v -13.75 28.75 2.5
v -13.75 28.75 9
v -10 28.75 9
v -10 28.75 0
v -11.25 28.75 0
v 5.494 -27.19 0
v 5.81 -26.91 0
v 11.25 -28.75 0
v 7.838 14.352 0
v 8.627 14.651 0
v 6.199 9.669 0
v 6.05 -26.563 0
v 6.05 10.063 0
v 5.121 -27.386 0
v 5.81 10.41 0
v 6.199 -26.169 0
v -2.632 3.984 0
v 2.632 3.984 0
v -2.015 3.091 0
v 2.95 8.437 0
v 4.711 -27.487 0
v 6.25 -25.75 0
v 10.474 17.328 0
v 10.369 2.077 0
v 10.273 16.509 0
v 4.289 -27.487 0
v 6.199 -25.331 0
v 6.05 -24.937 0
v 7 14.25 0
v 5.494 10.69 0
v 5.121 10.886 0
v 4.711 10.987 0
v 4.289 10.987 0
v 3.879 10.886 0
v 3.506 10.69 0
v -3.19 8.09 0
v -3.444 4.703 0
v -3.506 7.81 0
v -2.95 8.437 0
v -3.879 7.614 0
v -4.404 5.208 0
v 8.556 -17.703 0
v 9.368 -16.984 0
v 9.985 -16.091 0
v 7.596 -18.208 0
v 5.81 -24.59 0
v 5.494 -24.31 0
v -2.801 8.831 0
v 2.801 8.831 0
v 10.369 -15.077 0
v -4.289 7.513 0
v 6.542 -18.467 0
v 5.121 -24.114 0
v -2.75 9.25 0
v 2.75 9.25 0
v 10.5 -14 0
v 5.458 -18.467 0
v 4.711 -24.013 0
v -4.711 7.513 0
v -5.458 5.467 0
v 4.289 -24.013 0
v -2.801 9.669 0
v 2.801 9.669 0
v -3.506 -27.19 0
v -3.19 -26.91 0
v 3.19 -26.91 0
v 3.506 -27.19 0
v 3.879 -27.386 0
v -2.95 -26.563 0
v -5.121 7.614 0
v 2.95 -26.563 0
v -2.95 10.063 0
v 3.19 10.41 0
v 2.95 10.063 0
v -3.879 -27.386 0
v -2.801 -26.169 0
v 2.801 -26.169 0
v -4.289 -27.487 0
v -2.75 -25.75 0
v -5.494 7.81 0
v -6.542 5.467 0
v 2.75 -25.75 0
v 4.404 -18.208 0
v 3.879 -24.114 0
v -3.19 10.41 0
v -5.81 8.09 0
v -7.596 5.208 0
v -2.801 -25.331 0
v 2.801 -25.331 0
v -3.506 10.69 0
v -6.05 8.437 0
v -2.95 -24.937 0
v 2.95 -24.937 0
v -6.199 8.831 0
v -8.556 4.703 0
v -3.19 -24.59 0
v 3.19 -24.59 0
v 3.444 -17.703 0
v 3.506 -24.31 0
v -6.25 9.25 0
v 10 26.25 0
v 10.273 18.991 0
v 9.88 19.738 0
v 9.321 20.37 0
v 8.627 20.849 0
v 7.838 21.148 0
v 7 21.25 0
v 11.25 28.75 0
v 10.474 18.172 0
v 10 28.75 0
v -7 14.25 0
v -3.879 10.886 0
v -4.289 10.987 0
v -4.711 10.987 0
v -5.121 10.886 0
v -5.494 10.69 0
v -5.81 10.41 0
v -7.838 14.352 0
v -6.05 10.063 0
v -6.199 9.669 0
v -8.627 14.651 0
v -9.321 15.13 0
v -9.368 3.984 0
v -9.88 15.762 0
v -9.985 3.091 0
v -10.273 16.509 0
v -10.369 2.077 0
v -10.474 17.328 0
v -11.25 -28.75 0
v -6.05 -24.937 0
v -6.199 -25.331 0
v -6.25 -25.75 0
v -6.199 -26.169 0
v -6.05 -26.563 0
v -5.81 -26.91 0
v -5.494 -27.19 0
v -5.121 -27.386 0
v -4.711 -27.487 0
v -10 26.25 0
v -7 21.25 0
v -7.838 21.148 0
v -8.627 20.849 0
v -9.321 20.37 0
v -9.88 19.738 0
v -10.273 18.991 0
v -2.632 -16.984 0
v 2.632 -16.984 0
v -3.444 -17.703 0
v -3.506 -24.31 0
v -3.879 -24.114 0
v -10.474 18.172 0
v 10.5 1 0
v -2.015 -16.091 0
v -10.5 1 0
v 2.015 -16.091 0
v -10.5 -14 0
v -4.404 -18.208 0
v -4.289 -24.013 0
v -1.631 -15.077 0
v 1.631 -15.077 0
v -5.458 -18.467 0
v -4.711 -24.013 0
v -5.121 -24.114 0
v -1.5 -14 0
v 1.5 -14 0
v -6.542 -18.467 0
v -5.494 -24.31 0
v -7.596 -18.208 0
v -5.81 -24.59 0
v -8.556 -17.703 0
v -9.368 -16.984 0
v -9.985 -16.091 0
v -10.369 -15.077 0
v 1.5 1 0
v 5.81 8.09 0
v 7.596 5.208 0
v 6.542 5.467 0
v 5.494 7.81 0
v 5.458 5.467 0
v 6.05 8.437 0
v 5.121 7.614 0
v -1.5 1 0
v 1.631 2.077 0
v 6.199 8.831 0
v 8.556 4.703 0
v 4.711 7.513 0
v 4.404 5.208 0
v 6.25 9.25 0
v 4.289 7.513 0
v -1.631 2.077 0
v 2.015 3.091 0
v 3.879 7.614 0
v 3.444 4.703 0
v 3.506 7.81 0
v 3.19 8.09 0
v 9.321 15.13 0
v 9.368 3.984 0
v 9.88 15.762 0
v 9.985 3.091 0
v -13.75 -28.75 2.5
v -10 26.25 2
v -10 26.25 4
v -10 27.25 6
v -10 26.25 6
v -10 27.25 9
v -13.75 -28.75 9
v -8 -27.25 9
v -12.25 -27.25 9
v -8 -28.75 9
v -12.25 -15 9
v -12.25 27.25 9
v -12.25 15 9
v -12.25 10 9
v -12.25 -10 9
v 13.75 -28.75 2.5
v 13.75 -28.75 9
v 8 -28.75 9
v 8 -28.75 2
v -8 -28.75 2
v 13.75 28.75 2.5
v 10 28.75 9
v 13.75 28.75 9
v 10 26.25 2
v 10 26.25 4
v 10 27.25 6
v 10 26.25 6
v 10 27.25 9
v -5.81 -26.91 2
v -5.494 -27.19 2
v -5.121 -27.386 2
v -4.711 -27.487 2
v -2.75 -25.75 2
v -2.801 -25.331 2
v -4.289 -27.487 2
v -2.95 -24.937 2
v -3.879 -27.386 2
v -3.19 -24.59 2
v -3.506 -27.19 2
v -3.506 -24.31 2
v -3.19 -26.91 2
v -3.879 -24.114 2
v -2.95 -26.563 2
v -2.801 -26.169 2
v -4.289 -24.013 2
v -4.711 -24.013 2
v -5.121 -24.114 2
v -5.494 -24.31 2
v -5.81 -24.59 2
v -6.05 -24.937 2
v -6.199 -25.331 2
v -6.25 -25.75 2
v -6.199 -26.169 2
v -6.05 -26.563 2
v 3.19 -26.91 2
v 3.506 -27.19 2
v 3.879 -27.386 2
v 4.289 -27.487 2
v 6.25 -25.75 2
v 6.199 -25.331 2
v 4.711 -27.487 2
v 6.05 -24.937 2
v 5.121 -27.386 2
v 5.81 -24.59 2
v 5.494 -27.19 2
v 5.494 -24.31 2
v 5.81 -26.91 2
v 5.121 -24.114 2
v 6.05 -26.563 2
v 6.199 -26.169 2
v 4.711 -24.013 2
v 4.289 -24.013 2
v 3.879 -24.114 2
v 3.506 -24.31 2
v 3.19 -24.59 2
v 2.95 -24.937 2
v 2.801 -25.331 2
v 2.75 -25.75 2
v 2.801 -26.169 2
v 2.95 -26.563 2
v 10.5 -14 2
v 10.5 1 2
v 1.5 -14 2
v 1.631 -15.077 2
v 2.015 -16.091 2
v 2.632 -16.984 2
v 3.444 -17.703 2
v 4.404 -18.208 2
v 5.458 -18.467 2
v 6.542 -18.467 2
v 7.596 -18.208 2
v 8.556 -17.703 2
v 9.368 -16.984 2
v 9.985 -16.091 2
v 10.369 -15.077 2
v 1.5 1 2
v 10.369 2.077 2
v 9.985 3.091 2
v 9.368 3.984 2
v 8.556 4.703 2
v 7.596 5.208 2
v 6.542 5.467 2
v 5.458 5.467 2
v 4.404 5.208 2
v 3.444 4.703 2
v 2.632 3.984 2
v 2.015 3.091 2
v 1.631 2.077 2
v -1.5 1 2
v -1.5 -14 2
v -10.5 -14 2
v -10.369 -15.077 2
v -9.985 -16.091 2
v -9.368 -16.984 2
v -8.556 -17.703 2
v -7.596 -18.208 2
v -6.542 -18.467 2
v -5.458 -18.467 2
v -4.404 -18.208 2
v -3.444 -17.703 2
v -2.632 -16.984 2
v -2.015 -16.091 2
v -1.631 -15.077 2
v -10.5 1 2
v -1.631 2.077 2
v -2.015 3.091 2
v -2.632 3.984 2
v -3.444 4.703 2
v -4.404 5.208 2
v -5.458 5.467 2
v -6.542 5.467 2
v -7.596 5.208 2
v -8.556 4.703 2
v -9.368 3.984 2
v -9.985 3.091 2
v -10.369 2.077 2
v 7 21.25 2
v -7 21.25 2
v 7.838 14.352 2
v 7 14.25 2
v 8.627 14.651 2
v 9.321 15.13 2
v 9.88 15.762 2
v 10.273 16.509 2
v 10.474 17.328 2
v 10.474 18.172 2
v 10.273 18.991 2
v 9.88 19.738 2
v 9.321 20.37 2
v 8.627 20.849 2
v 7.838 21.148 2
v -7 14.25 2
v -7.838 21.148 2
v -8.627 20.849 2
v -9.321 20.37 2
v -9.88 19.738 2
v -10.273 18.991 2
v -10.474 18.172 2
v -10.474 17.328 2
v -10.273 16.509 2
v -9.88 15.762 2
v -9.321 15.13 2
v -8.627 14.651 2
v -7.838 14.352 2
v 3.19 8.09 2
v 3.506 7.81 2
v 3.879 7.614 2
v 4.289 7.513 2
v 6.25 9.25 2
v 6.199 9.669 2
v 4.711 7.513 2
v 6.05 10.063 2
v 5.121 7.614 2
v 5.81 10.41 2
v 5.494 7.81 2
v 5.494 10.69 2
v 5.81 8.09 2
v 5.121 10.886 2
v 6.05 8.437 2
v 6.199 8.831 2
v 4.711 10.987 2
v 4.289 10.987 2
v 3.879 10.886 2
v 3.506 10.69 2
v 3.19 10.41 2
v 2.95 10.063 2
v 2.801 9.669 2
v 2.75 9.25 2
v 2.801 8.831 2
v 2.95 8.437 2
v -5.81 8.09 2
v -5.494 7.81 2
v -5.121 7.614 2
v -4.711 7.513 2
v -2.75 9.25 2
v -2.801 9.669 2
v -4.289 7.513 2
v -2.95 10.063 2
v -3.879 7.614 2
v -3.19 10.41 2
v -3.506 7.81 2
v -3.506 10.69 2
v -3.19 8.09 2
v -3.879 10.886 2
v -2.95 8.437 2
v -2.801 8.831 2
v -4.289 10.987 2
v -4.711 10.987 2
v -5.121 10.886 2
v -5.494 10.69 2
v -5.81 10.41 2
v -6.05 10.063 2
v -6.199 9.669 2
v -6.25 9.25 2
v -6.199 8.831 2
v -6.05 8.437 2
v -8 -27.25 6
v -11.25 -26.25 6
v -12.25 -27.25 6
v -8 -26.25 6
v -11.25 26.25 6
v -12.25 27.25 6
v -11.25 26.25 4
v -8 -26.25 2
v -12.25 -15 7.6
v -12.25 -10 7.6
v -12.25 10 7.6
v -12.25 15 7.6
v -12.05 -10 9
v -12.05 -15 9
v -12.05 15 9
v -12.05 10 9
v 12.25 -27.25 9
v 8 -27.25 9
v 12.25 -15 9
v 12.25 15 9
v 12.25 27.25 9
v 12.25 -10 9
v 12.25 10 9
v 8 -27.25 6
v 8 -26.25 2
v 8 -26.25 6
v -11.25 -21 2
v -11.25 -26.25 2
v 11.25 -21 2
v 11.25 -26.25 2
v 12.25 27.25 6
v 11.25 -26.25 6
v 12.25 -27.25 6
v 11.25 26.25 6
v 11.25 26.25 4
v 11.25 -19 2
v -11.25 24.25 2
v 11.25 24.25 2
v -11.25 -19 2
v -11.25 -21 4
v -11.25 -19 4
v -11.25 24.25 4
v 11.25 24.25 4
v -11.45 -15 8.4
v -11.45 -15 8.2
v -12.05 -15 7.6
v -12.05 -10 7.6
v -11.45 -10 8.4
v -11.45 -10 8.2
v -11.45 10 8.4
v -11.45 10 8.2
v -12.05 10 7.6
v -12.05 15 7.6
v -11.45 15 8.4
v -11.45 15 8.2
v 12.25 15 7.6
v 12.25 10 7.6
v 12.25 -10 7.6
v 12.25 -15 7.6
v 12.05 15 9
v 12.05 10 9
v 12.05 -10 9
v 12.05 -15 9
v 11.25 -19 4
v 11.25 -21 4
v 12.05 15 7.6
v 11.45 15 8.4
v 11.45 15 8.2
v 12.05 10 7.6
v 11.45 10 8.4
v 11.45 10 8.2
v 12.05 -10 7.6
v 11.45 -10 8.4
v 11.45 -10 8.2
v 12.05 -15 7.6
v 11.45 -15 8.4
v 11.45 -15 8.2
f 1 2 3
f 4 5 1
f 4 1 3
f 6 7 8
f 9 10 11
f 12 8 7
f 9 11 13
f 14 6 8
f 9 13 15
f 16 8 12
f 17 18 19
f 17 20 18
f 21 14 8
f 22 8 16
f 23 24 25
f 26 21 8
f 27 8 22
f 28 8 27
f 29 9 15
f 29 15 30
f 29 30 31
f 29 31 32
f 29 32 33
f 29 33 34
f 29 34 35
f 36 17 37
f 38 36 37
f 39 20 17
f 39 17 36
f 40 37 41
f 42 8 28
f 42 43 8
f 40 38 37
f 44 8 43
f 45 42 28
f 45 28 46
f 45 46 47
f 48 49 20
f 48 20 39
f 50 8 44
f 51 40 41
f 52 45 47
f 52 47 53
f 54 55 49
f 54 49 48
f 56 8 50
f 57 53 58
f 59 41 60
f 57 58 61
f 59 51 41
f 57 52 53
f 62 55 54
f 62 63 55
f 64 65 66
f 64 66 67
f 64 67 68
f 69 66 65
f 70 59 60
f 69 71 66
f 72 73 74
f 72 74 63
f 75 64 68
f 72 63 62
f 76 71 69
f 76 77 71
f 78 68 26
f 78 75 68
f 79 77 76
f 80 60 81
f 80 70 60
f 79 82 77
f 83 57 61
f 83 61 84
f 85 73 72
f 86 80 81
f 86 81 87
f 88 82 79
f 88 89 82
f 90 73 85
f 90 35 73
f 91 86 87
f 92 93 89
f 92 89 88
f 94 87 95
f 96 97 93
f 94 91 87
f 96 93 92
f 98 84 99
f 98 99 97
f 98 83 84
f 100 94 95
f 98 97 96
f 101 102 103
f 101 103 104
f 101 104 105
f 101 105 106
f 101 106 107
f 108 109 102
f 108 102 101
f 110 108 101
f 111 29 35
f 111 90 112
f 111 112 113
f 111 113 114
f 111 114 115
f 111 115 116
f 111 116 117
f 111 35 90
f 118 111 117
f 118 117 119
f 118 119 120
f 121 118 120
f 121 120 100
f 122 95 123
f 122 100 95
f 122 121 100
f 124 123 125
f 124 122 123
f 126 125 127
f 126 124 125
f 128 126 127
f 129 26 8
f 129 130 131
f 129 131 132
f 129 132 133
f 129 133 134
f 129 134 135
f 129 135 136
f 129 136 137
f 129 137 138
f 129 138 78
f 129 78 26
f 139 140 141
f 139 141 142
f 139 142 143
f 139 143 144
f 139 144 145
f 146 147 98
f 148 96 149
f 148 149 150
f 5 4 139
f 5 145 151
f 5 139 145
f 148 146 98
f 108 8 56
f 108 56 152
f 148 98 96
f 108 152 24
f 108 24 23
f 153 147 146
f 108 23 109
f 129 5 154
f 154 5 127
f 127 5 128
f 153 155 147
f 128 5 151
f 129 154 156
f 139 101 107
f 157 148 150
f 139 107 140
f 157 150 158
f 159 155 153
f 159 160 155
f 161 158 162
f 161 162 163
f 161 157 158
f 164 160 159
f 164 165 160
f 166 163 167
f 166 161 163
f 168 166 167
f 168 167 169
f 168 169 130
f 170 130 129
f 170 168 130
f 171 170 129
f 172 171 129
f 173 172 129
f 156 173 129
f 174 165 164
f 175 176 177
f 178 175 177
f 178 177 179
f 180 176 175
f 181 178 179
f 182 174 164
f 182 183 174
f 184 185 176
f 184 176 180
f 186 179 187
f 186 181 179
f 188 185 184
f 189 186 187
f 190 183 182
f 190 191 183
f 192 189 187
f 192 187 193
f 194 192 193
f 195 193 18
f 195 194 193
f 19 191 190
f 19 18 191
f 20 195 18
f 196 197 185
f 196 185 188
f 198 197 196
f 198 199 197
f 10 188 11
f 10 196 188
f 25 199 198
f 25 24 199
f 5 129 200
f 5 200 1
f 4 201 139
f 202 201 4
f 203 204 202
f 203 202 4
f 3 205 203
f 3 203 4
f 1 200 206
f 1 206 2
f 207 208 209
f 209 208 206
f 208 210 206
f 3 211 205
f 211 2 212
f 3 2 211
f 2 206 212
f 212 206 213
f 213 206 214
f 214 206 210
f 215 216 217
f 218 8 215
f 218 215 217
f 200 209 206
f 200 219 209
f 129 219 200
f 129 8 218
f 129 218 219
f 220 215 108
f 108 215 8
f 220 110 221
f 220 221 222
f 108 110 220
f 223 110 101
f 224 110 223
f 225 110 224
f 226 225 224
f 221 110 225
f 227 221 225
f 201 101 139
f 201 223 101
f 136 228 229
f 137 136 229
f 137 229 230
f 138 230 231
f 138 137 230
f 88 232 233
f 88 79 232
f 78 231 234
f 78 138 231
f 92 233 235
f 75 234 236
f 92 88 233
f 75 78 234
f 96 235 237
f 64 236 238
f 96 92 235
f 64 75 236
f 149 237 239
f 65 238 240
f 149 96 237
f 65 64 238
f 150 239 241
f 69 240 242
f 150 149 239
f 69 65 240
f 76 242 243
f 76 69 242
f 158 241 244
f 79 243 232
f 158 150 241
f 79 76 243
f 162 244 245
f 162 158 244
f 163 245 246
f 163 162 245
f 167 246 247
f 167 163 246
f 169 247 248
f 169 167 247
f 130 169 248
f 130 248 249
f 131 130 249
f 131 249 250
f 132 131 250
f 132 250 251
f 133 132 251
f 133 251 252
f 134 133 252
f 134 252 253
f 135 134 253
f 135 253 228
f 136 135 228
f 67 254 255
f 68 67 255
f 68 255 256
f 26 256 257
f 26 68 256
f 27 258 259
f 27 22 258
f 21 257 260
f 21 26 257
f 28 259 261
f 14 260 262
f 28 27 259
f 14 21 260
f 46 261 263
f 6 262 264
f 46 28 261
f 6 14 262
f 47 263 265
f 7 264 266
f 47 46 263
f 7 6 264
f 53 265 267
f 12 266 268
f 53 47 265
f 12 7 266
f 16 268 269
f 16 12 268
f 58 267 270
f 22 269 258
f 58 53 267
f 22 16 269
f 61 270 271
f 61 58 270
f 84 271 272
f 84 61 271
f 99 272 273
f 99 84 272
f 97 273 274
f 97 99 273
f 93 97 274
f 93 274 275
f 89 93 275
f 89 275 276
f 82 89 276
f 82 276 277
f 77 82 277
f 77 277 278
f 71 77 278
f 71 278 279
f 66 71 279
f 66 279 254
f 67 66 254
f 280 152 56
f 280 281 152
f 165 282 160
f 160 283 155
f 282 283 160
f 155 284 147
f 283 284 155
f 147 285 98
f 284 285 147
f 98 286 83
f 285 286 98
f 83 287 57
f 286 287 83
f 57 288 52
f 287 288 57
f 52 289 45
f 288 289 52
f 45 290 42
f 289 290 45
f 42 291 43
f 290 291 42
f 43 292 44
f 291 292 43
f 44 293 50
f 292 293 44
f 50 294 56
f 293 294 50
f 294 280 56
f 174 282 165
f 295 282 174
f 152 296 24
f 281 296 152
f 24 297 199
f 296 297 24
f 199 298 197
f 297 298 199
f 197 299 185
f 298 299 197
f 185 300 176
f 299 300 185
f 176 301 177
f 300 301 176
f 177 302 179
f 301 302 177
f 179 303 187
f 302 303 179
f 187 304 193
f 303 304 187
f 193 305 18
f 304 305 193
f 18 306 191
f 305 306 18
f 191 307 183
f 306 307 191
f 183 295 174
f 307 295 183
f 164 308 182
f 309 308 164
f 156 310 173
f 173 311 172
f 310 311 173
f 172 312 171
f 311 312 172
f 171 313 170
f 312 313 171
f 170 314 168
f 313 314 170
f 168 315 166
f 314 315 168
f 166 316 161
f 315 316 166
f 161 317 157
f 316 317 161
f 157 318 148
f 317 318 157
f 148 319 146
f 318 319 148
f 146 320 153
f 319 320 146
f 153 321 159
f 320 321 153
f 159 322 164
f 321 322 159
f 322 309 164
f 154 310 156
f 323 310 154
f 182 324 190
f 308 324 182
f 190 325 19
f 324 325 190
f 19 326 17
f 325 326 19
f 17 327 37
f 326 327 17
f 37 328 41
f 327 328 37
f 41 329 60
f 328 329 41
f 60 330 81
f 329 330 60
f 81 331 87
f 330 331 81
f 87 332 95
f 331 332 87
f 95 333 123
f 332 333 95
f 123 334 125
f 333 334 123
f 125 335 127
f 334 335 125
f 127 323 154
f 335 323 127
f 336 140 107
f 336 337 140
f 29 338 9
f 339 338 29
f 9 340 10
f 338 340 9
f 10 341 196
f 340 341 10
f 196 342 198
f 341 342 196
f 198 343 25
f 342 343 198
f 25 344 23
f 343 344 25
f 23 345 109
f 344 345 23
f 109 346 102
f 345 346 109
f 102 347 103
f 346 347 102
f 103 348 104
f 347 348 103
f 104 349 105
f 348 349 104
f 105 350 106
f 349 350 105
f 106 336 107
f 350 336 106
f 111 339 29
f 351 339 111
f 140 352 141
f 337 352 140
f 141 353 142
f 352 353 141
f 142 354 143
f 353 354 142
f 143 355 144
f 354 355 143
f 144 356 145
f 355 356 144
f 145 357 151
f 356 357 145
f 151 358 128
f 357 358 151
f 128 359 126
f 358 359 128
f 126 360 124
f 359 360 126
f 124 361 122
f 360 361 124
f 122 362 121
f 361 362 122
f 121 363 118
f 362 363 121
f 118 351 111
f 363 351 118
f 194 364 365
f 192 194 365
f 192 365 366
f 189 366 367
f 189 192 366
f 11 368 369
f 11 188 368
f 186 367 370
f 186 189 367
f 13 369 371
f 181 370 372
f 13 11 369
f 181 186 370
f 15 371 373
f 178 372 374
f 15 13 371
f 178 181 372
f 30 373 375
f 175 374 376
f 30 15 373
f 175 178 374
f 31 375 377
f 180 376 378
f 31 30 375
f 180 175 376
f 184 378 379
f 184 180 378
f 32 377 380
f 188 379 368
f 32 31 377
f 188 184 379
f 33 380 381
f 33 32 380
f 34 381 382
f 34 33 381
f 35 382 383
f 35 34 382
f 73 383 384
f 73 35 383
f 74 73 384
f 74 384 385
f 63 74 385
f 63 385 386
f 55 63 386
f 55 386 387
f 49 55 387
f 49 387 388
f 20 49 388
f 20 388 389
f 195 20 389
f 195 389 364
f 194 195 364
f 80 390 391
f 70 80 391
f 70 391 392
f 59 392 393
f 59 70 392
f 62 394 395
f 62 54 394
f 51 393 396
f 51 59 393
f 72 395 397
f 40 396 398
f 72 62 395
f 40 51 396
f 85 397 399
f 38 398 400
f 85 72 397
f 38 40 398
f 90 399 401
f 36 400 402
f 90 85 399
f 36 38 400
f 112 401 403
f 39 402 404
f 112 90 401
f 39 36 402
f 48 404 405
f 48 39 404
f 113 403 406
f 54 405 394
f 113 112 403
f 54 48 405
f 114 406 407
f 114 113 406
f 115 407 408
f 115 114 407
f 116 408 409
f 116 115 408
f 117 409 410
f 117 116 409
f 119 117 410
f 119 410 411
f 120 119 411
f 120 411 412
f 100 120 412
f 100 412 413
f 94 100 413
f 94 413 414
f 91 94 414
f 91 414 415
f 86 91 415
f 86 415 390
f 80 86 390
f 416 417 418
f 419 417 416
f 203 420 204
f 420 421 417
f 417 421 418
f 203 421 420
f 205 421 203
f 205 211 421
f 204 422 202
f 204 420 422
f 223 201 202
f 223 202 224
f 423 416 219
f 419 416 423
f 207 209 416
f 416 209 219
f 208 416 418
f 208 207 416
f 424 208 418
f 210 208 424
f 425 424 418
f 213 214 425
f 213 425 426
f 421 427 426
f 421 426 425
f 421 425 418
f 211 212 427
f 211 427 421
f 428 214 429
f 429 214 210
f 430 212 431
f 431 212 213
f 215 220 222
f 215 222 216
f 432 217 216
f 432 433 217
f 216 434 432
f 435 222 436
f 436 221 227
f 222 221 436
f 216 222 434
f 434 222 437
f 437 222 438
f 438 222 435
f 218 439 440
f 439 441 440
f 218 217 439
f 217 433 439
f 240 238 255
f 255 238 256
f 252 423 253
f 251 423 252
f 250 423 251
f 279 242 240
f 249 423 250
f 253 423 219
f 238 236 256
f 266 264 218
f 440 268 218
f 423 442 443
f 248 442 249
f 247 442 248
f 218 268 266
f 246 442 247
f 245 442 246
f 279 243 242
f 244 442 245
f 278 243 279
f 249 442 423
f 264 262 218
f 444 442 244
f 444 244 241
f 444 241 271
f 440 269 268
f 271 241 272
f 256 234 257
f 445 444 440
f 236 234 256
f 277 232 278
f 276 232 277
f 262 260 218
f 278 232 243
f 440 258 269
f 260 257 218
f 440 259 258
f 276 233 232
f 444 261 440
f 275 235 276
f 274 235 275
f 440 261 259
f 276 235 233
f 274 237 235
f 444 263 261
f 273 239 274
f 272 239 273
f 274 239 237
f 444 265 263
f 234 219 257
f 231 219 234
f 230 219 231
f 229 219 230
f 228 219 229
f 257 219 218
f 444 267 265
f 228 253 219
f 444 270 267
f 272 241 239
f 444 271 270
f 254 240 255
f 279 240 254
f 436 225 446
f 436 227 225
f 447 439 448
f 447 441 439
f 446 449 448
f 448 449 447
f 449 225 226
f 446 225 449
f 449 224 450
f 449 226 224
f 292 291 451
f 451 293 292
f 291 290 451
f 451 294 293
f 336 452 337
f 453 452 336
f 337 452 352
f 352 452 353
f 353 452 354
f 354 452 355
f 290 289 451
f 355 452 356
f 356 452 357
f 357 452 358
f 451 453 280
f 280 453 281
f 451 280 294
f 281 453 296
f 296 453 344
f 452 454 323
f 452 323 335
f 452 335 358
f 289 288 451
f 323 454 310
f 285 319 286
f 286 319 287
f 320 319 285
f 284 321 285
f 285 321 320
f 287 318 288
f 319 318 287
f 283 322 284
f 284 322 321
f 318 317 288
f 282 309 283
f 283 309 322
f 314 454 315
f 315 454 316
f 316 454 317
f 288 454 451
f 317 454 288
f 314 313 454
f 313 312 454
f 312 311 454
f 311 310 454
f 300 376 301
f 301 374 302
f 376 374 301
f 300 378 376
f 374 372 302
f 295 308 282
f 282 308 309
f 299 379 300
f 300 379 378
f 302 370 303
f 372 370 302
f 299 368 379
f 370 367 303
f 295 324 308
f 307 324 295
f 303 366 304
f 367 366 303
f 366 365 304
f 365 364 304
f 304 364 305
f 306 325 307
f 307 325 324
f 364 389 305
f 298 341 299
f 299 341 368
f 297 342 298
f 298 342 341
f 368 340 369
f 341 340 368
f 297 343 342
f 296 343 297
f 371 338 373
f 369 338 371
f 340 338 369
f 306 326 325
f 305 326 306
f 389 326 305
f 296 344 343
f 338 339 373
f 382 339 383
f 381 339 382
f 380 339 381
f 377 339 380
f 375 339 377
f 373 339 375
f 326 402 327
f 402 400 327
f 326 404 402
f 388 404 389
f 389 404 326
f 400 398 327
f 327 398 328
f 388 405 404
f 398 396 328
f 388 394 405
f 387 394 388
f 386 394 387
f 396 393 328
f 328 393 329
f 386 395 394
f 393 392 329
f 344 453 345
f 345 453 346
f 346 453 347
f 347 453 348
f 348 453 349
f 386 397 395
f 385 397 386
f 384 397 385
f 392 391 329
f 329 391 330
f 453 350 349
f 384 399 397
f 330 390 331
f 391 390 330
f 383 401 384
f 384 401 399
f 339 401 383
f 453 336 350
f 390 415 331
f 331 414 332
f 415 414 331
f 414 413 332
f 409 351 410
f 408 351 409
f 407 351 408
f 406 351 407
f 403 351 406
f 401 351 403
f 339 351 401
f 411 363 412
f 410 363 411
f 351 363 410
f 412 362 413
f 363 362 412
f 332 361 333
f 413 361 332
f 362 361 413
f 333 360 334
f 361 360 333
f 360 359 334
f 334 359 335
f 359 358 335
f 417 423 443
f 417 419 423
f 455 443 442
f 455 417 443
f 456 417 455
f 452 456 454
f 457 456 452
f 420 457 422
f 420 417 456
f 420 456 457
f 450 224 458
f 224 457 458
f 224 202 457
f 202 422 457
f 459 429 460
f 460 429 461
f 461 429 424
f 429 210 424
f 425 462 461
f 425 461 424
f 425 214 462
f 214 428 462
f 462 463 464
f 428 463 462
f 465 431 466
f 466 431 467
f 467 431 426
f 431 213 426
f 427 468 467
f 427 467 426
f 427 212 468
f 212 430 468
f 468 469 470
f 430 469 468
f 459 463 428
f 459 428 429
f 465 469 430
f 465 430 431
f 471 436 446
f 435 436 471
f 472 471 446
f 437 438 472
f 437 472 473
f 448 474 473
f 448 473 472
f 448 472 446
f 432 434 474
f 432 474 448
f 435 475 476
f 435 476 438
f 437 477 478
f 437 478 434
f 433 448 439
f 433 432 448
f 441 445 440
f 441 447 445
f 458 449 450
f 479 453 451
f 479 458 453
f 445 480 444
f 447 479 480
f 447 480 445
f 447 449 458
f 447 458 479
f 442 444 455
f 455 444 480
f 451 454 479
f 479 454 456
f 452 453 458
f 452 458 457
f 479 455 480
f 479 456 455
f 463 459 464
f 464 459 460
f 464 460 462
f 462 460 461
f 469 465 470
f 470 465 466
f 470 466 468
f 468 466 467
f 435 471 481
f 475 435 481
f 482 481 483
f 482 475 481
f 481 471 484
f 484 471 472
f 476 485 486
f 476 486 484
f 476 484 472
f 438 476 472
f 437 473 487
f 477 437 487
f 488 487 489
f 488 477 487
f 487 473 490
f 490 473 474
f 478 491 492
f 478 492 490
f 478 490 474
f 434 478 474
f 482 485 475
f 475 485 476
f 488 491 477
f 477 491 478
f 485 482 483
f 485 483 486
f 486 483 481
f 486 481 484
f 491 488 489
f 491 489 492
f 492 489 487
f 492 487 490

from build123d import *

# Parameters (mm, degrees)
SKETCH_W        = 27.5
SKETCH_H        = 57.5
SKETCH_R        = 1.75
PAD_DEPTH       = 9
POCKET_DEPTH    = 7
SKETCH002_W     = 24.5
SKETCH002_H     = 54.5
POCKET001_DEPTH = 3
SKETCH003_W     = 0.8
SKETCH003_H     = 5
PAD001_DEPTH    = 1.4
CHAMFER_SIZE    = 0.6
SKETCH004_W     = 20
SKETCH004_H     = 3
POCKET002_DEPTH = 9.001
SKETCH005_W     = 22.5
SKETCH005_H     = 2
PAD002_DEPTH    = 2
POCKET003_DEPTH = 2.001
CHAMFER001_SIZE = 2.5


with BuildPart() as part:
    # Sketch → Pad (new body)
    with BuildSketch(Plane.XY):
        Rectangle(SKETCH_W, SKETCH_H)
        with Locations((-4.5, 9.25)):
            Circle(SKETCH_R, mode=Mode.SUBTRACT)
        with Locations((-4.5, -25.75)):
            Circle(SKETCH_R, mode=Mode.SUBTRACT)
        with Locations((4.5, 9.25)):
            Circle(SKETCH_R, mode=Mode.SUBTRACT)
        with Locations((4.5, -25.75)):
            Circle(SKETCH_R, mode=Mode.SUBTRACT)
    extrude(amount=PAD_DEPTH)

    # Sketch001 (on Face10 of Pad) → Pocket (cut)
    with BuildSketch(Plane.XY.offset(9)):
        Polygon((-11.25, 26.25), (11.25, 26.25), (11.25, -26.25), (8, -26.25), (8, -29.25), (-8, -29.25), (-8, -26.25), (-11.25, -26.25), align=None)
    extrude(amount=-POCKET_DEPTH, mode=Mode.SUBTRACT)

    # Sketch002 (on Face5 of Pocket) → Pocket001 (cut)
    with BuildSketch(Plane.XY.offset(9)):
        Rectangle(SKETCH002_W, SKETCH002_H)
    extrude(amount=-POCKET001_DEPTH, mode=Mode.SUBTRACT)

    # Sketch003 (on Face5 of Pocket001) → Pad001 (join)
    with BuildSketch(Plane.XY.offset(9)):
        with Locations((-11.85, 12.5)):
            Rectangle(SKETCH003_W, SKETCH003_H)
        with Locations((-11.85, -12.5)):
            Rectangle(SKETCH003_W, SKETCH003_H)
        with Locations((11.85, -12.5)):
            Rectangle(SKETCH003_W, SKETCH003_H)
        with Locations((11.85, 12.5)):
            Rectangle(SKETCH003_W, SKETCH003_H)
    extrude(amount=-PAD001_DEPTH)

    # Chamfer
    chamfer_edges = [part.edges().sort_by_distance(p)[0] for p in [
        (-11.45, -12.5, 9),
        (-11.45, -12.5, 7.6),
        (-11.45, 12.5, 9),
        (-11.45, 12.5, 7.6),
        (11.45, 12.5, 9),
        (11.45, 12.5, 7.6),
        (11.45, -12.5, 9),
        (11.45, -12.5, 7.6),
    ]]
    chamfer(chamfer_edges, length=CHAMFER_SIZE)

    # Sketch004 (on Face4 of Chamfer) → Pocket002 (cut, through all)
    with BuildSketch(Plane.XY.offset(9)):
        with Locations((0, 27.75)):
            Rectangle(SKETCH004_W, SKETCH004_H)
    extrude(amount=-POCKET002_DEPTH, mode=Mode.SUBTRACT)

    # Sketch005 (on Face22 of Pocket002) → Pad002 (join)
    with BuildSketch(Plane.XY.offset(2)):
        with Locations((0, 25.25)):
            Rectangle(SKETCH005_W, SKETCH005_H)
        with Locations((0, -20)):
            Rectangle(SKETCH005_W, SKETCH005_H)
    extrude(amount=PAD002_DEPTH)

    # Sketch006 (on Face52 of Pad002) → Pocket003 (cut, through all)
    with BuildSketch(Plane.XY.offset(2)):
        with BuildLine():
            ThreePointArc((-7, 21.25), (-10.5, 17.75), (-7, 14.25))
            Line((-7, 14.25), (7, 14.25))
            ThreePointArc((7, 14.25), (10.5, 17.75), (7, 21.25))
            Line((-7, 21.25), (7, 21.25))
        make_face()
        with BuildLine():
            ThreePointArc((-1.5, 1), (-6, 5.5), (-10.5, 1))
            Line((-10.5, 1), (-10.5, -14))
            ThreePointArc((-10.5, -14), (-6, -18.5), (-1.5, -14))
            Line((-1.5, 1), (-1.5, -14))
        make_face()
        with BuildLine():
            ThreePointArc((10.5, 1), (6, 5.5), (1.5, 1))
            Line((1.5, 1), (1.5, -14))
            ThreePointArc((1.5, -14), (6, -18.5), (10.5, -14))
            Line((10.5, 1), (10.5, -14))
        make_face()
    extrude(amount=-POCKET003_DEPTH, mode=Mode.SUBTRACT)

    # Chamfer001
    chamfer001_edges = [part.edges().sort_by_distance(p)[0] for p in [
        (-13.75, 0, 0),
        (13.75, 0, 0),
    ]]
    chamfer(chamfer001_edges, length=CHAMFER001_SIZE)


solid = part.part
